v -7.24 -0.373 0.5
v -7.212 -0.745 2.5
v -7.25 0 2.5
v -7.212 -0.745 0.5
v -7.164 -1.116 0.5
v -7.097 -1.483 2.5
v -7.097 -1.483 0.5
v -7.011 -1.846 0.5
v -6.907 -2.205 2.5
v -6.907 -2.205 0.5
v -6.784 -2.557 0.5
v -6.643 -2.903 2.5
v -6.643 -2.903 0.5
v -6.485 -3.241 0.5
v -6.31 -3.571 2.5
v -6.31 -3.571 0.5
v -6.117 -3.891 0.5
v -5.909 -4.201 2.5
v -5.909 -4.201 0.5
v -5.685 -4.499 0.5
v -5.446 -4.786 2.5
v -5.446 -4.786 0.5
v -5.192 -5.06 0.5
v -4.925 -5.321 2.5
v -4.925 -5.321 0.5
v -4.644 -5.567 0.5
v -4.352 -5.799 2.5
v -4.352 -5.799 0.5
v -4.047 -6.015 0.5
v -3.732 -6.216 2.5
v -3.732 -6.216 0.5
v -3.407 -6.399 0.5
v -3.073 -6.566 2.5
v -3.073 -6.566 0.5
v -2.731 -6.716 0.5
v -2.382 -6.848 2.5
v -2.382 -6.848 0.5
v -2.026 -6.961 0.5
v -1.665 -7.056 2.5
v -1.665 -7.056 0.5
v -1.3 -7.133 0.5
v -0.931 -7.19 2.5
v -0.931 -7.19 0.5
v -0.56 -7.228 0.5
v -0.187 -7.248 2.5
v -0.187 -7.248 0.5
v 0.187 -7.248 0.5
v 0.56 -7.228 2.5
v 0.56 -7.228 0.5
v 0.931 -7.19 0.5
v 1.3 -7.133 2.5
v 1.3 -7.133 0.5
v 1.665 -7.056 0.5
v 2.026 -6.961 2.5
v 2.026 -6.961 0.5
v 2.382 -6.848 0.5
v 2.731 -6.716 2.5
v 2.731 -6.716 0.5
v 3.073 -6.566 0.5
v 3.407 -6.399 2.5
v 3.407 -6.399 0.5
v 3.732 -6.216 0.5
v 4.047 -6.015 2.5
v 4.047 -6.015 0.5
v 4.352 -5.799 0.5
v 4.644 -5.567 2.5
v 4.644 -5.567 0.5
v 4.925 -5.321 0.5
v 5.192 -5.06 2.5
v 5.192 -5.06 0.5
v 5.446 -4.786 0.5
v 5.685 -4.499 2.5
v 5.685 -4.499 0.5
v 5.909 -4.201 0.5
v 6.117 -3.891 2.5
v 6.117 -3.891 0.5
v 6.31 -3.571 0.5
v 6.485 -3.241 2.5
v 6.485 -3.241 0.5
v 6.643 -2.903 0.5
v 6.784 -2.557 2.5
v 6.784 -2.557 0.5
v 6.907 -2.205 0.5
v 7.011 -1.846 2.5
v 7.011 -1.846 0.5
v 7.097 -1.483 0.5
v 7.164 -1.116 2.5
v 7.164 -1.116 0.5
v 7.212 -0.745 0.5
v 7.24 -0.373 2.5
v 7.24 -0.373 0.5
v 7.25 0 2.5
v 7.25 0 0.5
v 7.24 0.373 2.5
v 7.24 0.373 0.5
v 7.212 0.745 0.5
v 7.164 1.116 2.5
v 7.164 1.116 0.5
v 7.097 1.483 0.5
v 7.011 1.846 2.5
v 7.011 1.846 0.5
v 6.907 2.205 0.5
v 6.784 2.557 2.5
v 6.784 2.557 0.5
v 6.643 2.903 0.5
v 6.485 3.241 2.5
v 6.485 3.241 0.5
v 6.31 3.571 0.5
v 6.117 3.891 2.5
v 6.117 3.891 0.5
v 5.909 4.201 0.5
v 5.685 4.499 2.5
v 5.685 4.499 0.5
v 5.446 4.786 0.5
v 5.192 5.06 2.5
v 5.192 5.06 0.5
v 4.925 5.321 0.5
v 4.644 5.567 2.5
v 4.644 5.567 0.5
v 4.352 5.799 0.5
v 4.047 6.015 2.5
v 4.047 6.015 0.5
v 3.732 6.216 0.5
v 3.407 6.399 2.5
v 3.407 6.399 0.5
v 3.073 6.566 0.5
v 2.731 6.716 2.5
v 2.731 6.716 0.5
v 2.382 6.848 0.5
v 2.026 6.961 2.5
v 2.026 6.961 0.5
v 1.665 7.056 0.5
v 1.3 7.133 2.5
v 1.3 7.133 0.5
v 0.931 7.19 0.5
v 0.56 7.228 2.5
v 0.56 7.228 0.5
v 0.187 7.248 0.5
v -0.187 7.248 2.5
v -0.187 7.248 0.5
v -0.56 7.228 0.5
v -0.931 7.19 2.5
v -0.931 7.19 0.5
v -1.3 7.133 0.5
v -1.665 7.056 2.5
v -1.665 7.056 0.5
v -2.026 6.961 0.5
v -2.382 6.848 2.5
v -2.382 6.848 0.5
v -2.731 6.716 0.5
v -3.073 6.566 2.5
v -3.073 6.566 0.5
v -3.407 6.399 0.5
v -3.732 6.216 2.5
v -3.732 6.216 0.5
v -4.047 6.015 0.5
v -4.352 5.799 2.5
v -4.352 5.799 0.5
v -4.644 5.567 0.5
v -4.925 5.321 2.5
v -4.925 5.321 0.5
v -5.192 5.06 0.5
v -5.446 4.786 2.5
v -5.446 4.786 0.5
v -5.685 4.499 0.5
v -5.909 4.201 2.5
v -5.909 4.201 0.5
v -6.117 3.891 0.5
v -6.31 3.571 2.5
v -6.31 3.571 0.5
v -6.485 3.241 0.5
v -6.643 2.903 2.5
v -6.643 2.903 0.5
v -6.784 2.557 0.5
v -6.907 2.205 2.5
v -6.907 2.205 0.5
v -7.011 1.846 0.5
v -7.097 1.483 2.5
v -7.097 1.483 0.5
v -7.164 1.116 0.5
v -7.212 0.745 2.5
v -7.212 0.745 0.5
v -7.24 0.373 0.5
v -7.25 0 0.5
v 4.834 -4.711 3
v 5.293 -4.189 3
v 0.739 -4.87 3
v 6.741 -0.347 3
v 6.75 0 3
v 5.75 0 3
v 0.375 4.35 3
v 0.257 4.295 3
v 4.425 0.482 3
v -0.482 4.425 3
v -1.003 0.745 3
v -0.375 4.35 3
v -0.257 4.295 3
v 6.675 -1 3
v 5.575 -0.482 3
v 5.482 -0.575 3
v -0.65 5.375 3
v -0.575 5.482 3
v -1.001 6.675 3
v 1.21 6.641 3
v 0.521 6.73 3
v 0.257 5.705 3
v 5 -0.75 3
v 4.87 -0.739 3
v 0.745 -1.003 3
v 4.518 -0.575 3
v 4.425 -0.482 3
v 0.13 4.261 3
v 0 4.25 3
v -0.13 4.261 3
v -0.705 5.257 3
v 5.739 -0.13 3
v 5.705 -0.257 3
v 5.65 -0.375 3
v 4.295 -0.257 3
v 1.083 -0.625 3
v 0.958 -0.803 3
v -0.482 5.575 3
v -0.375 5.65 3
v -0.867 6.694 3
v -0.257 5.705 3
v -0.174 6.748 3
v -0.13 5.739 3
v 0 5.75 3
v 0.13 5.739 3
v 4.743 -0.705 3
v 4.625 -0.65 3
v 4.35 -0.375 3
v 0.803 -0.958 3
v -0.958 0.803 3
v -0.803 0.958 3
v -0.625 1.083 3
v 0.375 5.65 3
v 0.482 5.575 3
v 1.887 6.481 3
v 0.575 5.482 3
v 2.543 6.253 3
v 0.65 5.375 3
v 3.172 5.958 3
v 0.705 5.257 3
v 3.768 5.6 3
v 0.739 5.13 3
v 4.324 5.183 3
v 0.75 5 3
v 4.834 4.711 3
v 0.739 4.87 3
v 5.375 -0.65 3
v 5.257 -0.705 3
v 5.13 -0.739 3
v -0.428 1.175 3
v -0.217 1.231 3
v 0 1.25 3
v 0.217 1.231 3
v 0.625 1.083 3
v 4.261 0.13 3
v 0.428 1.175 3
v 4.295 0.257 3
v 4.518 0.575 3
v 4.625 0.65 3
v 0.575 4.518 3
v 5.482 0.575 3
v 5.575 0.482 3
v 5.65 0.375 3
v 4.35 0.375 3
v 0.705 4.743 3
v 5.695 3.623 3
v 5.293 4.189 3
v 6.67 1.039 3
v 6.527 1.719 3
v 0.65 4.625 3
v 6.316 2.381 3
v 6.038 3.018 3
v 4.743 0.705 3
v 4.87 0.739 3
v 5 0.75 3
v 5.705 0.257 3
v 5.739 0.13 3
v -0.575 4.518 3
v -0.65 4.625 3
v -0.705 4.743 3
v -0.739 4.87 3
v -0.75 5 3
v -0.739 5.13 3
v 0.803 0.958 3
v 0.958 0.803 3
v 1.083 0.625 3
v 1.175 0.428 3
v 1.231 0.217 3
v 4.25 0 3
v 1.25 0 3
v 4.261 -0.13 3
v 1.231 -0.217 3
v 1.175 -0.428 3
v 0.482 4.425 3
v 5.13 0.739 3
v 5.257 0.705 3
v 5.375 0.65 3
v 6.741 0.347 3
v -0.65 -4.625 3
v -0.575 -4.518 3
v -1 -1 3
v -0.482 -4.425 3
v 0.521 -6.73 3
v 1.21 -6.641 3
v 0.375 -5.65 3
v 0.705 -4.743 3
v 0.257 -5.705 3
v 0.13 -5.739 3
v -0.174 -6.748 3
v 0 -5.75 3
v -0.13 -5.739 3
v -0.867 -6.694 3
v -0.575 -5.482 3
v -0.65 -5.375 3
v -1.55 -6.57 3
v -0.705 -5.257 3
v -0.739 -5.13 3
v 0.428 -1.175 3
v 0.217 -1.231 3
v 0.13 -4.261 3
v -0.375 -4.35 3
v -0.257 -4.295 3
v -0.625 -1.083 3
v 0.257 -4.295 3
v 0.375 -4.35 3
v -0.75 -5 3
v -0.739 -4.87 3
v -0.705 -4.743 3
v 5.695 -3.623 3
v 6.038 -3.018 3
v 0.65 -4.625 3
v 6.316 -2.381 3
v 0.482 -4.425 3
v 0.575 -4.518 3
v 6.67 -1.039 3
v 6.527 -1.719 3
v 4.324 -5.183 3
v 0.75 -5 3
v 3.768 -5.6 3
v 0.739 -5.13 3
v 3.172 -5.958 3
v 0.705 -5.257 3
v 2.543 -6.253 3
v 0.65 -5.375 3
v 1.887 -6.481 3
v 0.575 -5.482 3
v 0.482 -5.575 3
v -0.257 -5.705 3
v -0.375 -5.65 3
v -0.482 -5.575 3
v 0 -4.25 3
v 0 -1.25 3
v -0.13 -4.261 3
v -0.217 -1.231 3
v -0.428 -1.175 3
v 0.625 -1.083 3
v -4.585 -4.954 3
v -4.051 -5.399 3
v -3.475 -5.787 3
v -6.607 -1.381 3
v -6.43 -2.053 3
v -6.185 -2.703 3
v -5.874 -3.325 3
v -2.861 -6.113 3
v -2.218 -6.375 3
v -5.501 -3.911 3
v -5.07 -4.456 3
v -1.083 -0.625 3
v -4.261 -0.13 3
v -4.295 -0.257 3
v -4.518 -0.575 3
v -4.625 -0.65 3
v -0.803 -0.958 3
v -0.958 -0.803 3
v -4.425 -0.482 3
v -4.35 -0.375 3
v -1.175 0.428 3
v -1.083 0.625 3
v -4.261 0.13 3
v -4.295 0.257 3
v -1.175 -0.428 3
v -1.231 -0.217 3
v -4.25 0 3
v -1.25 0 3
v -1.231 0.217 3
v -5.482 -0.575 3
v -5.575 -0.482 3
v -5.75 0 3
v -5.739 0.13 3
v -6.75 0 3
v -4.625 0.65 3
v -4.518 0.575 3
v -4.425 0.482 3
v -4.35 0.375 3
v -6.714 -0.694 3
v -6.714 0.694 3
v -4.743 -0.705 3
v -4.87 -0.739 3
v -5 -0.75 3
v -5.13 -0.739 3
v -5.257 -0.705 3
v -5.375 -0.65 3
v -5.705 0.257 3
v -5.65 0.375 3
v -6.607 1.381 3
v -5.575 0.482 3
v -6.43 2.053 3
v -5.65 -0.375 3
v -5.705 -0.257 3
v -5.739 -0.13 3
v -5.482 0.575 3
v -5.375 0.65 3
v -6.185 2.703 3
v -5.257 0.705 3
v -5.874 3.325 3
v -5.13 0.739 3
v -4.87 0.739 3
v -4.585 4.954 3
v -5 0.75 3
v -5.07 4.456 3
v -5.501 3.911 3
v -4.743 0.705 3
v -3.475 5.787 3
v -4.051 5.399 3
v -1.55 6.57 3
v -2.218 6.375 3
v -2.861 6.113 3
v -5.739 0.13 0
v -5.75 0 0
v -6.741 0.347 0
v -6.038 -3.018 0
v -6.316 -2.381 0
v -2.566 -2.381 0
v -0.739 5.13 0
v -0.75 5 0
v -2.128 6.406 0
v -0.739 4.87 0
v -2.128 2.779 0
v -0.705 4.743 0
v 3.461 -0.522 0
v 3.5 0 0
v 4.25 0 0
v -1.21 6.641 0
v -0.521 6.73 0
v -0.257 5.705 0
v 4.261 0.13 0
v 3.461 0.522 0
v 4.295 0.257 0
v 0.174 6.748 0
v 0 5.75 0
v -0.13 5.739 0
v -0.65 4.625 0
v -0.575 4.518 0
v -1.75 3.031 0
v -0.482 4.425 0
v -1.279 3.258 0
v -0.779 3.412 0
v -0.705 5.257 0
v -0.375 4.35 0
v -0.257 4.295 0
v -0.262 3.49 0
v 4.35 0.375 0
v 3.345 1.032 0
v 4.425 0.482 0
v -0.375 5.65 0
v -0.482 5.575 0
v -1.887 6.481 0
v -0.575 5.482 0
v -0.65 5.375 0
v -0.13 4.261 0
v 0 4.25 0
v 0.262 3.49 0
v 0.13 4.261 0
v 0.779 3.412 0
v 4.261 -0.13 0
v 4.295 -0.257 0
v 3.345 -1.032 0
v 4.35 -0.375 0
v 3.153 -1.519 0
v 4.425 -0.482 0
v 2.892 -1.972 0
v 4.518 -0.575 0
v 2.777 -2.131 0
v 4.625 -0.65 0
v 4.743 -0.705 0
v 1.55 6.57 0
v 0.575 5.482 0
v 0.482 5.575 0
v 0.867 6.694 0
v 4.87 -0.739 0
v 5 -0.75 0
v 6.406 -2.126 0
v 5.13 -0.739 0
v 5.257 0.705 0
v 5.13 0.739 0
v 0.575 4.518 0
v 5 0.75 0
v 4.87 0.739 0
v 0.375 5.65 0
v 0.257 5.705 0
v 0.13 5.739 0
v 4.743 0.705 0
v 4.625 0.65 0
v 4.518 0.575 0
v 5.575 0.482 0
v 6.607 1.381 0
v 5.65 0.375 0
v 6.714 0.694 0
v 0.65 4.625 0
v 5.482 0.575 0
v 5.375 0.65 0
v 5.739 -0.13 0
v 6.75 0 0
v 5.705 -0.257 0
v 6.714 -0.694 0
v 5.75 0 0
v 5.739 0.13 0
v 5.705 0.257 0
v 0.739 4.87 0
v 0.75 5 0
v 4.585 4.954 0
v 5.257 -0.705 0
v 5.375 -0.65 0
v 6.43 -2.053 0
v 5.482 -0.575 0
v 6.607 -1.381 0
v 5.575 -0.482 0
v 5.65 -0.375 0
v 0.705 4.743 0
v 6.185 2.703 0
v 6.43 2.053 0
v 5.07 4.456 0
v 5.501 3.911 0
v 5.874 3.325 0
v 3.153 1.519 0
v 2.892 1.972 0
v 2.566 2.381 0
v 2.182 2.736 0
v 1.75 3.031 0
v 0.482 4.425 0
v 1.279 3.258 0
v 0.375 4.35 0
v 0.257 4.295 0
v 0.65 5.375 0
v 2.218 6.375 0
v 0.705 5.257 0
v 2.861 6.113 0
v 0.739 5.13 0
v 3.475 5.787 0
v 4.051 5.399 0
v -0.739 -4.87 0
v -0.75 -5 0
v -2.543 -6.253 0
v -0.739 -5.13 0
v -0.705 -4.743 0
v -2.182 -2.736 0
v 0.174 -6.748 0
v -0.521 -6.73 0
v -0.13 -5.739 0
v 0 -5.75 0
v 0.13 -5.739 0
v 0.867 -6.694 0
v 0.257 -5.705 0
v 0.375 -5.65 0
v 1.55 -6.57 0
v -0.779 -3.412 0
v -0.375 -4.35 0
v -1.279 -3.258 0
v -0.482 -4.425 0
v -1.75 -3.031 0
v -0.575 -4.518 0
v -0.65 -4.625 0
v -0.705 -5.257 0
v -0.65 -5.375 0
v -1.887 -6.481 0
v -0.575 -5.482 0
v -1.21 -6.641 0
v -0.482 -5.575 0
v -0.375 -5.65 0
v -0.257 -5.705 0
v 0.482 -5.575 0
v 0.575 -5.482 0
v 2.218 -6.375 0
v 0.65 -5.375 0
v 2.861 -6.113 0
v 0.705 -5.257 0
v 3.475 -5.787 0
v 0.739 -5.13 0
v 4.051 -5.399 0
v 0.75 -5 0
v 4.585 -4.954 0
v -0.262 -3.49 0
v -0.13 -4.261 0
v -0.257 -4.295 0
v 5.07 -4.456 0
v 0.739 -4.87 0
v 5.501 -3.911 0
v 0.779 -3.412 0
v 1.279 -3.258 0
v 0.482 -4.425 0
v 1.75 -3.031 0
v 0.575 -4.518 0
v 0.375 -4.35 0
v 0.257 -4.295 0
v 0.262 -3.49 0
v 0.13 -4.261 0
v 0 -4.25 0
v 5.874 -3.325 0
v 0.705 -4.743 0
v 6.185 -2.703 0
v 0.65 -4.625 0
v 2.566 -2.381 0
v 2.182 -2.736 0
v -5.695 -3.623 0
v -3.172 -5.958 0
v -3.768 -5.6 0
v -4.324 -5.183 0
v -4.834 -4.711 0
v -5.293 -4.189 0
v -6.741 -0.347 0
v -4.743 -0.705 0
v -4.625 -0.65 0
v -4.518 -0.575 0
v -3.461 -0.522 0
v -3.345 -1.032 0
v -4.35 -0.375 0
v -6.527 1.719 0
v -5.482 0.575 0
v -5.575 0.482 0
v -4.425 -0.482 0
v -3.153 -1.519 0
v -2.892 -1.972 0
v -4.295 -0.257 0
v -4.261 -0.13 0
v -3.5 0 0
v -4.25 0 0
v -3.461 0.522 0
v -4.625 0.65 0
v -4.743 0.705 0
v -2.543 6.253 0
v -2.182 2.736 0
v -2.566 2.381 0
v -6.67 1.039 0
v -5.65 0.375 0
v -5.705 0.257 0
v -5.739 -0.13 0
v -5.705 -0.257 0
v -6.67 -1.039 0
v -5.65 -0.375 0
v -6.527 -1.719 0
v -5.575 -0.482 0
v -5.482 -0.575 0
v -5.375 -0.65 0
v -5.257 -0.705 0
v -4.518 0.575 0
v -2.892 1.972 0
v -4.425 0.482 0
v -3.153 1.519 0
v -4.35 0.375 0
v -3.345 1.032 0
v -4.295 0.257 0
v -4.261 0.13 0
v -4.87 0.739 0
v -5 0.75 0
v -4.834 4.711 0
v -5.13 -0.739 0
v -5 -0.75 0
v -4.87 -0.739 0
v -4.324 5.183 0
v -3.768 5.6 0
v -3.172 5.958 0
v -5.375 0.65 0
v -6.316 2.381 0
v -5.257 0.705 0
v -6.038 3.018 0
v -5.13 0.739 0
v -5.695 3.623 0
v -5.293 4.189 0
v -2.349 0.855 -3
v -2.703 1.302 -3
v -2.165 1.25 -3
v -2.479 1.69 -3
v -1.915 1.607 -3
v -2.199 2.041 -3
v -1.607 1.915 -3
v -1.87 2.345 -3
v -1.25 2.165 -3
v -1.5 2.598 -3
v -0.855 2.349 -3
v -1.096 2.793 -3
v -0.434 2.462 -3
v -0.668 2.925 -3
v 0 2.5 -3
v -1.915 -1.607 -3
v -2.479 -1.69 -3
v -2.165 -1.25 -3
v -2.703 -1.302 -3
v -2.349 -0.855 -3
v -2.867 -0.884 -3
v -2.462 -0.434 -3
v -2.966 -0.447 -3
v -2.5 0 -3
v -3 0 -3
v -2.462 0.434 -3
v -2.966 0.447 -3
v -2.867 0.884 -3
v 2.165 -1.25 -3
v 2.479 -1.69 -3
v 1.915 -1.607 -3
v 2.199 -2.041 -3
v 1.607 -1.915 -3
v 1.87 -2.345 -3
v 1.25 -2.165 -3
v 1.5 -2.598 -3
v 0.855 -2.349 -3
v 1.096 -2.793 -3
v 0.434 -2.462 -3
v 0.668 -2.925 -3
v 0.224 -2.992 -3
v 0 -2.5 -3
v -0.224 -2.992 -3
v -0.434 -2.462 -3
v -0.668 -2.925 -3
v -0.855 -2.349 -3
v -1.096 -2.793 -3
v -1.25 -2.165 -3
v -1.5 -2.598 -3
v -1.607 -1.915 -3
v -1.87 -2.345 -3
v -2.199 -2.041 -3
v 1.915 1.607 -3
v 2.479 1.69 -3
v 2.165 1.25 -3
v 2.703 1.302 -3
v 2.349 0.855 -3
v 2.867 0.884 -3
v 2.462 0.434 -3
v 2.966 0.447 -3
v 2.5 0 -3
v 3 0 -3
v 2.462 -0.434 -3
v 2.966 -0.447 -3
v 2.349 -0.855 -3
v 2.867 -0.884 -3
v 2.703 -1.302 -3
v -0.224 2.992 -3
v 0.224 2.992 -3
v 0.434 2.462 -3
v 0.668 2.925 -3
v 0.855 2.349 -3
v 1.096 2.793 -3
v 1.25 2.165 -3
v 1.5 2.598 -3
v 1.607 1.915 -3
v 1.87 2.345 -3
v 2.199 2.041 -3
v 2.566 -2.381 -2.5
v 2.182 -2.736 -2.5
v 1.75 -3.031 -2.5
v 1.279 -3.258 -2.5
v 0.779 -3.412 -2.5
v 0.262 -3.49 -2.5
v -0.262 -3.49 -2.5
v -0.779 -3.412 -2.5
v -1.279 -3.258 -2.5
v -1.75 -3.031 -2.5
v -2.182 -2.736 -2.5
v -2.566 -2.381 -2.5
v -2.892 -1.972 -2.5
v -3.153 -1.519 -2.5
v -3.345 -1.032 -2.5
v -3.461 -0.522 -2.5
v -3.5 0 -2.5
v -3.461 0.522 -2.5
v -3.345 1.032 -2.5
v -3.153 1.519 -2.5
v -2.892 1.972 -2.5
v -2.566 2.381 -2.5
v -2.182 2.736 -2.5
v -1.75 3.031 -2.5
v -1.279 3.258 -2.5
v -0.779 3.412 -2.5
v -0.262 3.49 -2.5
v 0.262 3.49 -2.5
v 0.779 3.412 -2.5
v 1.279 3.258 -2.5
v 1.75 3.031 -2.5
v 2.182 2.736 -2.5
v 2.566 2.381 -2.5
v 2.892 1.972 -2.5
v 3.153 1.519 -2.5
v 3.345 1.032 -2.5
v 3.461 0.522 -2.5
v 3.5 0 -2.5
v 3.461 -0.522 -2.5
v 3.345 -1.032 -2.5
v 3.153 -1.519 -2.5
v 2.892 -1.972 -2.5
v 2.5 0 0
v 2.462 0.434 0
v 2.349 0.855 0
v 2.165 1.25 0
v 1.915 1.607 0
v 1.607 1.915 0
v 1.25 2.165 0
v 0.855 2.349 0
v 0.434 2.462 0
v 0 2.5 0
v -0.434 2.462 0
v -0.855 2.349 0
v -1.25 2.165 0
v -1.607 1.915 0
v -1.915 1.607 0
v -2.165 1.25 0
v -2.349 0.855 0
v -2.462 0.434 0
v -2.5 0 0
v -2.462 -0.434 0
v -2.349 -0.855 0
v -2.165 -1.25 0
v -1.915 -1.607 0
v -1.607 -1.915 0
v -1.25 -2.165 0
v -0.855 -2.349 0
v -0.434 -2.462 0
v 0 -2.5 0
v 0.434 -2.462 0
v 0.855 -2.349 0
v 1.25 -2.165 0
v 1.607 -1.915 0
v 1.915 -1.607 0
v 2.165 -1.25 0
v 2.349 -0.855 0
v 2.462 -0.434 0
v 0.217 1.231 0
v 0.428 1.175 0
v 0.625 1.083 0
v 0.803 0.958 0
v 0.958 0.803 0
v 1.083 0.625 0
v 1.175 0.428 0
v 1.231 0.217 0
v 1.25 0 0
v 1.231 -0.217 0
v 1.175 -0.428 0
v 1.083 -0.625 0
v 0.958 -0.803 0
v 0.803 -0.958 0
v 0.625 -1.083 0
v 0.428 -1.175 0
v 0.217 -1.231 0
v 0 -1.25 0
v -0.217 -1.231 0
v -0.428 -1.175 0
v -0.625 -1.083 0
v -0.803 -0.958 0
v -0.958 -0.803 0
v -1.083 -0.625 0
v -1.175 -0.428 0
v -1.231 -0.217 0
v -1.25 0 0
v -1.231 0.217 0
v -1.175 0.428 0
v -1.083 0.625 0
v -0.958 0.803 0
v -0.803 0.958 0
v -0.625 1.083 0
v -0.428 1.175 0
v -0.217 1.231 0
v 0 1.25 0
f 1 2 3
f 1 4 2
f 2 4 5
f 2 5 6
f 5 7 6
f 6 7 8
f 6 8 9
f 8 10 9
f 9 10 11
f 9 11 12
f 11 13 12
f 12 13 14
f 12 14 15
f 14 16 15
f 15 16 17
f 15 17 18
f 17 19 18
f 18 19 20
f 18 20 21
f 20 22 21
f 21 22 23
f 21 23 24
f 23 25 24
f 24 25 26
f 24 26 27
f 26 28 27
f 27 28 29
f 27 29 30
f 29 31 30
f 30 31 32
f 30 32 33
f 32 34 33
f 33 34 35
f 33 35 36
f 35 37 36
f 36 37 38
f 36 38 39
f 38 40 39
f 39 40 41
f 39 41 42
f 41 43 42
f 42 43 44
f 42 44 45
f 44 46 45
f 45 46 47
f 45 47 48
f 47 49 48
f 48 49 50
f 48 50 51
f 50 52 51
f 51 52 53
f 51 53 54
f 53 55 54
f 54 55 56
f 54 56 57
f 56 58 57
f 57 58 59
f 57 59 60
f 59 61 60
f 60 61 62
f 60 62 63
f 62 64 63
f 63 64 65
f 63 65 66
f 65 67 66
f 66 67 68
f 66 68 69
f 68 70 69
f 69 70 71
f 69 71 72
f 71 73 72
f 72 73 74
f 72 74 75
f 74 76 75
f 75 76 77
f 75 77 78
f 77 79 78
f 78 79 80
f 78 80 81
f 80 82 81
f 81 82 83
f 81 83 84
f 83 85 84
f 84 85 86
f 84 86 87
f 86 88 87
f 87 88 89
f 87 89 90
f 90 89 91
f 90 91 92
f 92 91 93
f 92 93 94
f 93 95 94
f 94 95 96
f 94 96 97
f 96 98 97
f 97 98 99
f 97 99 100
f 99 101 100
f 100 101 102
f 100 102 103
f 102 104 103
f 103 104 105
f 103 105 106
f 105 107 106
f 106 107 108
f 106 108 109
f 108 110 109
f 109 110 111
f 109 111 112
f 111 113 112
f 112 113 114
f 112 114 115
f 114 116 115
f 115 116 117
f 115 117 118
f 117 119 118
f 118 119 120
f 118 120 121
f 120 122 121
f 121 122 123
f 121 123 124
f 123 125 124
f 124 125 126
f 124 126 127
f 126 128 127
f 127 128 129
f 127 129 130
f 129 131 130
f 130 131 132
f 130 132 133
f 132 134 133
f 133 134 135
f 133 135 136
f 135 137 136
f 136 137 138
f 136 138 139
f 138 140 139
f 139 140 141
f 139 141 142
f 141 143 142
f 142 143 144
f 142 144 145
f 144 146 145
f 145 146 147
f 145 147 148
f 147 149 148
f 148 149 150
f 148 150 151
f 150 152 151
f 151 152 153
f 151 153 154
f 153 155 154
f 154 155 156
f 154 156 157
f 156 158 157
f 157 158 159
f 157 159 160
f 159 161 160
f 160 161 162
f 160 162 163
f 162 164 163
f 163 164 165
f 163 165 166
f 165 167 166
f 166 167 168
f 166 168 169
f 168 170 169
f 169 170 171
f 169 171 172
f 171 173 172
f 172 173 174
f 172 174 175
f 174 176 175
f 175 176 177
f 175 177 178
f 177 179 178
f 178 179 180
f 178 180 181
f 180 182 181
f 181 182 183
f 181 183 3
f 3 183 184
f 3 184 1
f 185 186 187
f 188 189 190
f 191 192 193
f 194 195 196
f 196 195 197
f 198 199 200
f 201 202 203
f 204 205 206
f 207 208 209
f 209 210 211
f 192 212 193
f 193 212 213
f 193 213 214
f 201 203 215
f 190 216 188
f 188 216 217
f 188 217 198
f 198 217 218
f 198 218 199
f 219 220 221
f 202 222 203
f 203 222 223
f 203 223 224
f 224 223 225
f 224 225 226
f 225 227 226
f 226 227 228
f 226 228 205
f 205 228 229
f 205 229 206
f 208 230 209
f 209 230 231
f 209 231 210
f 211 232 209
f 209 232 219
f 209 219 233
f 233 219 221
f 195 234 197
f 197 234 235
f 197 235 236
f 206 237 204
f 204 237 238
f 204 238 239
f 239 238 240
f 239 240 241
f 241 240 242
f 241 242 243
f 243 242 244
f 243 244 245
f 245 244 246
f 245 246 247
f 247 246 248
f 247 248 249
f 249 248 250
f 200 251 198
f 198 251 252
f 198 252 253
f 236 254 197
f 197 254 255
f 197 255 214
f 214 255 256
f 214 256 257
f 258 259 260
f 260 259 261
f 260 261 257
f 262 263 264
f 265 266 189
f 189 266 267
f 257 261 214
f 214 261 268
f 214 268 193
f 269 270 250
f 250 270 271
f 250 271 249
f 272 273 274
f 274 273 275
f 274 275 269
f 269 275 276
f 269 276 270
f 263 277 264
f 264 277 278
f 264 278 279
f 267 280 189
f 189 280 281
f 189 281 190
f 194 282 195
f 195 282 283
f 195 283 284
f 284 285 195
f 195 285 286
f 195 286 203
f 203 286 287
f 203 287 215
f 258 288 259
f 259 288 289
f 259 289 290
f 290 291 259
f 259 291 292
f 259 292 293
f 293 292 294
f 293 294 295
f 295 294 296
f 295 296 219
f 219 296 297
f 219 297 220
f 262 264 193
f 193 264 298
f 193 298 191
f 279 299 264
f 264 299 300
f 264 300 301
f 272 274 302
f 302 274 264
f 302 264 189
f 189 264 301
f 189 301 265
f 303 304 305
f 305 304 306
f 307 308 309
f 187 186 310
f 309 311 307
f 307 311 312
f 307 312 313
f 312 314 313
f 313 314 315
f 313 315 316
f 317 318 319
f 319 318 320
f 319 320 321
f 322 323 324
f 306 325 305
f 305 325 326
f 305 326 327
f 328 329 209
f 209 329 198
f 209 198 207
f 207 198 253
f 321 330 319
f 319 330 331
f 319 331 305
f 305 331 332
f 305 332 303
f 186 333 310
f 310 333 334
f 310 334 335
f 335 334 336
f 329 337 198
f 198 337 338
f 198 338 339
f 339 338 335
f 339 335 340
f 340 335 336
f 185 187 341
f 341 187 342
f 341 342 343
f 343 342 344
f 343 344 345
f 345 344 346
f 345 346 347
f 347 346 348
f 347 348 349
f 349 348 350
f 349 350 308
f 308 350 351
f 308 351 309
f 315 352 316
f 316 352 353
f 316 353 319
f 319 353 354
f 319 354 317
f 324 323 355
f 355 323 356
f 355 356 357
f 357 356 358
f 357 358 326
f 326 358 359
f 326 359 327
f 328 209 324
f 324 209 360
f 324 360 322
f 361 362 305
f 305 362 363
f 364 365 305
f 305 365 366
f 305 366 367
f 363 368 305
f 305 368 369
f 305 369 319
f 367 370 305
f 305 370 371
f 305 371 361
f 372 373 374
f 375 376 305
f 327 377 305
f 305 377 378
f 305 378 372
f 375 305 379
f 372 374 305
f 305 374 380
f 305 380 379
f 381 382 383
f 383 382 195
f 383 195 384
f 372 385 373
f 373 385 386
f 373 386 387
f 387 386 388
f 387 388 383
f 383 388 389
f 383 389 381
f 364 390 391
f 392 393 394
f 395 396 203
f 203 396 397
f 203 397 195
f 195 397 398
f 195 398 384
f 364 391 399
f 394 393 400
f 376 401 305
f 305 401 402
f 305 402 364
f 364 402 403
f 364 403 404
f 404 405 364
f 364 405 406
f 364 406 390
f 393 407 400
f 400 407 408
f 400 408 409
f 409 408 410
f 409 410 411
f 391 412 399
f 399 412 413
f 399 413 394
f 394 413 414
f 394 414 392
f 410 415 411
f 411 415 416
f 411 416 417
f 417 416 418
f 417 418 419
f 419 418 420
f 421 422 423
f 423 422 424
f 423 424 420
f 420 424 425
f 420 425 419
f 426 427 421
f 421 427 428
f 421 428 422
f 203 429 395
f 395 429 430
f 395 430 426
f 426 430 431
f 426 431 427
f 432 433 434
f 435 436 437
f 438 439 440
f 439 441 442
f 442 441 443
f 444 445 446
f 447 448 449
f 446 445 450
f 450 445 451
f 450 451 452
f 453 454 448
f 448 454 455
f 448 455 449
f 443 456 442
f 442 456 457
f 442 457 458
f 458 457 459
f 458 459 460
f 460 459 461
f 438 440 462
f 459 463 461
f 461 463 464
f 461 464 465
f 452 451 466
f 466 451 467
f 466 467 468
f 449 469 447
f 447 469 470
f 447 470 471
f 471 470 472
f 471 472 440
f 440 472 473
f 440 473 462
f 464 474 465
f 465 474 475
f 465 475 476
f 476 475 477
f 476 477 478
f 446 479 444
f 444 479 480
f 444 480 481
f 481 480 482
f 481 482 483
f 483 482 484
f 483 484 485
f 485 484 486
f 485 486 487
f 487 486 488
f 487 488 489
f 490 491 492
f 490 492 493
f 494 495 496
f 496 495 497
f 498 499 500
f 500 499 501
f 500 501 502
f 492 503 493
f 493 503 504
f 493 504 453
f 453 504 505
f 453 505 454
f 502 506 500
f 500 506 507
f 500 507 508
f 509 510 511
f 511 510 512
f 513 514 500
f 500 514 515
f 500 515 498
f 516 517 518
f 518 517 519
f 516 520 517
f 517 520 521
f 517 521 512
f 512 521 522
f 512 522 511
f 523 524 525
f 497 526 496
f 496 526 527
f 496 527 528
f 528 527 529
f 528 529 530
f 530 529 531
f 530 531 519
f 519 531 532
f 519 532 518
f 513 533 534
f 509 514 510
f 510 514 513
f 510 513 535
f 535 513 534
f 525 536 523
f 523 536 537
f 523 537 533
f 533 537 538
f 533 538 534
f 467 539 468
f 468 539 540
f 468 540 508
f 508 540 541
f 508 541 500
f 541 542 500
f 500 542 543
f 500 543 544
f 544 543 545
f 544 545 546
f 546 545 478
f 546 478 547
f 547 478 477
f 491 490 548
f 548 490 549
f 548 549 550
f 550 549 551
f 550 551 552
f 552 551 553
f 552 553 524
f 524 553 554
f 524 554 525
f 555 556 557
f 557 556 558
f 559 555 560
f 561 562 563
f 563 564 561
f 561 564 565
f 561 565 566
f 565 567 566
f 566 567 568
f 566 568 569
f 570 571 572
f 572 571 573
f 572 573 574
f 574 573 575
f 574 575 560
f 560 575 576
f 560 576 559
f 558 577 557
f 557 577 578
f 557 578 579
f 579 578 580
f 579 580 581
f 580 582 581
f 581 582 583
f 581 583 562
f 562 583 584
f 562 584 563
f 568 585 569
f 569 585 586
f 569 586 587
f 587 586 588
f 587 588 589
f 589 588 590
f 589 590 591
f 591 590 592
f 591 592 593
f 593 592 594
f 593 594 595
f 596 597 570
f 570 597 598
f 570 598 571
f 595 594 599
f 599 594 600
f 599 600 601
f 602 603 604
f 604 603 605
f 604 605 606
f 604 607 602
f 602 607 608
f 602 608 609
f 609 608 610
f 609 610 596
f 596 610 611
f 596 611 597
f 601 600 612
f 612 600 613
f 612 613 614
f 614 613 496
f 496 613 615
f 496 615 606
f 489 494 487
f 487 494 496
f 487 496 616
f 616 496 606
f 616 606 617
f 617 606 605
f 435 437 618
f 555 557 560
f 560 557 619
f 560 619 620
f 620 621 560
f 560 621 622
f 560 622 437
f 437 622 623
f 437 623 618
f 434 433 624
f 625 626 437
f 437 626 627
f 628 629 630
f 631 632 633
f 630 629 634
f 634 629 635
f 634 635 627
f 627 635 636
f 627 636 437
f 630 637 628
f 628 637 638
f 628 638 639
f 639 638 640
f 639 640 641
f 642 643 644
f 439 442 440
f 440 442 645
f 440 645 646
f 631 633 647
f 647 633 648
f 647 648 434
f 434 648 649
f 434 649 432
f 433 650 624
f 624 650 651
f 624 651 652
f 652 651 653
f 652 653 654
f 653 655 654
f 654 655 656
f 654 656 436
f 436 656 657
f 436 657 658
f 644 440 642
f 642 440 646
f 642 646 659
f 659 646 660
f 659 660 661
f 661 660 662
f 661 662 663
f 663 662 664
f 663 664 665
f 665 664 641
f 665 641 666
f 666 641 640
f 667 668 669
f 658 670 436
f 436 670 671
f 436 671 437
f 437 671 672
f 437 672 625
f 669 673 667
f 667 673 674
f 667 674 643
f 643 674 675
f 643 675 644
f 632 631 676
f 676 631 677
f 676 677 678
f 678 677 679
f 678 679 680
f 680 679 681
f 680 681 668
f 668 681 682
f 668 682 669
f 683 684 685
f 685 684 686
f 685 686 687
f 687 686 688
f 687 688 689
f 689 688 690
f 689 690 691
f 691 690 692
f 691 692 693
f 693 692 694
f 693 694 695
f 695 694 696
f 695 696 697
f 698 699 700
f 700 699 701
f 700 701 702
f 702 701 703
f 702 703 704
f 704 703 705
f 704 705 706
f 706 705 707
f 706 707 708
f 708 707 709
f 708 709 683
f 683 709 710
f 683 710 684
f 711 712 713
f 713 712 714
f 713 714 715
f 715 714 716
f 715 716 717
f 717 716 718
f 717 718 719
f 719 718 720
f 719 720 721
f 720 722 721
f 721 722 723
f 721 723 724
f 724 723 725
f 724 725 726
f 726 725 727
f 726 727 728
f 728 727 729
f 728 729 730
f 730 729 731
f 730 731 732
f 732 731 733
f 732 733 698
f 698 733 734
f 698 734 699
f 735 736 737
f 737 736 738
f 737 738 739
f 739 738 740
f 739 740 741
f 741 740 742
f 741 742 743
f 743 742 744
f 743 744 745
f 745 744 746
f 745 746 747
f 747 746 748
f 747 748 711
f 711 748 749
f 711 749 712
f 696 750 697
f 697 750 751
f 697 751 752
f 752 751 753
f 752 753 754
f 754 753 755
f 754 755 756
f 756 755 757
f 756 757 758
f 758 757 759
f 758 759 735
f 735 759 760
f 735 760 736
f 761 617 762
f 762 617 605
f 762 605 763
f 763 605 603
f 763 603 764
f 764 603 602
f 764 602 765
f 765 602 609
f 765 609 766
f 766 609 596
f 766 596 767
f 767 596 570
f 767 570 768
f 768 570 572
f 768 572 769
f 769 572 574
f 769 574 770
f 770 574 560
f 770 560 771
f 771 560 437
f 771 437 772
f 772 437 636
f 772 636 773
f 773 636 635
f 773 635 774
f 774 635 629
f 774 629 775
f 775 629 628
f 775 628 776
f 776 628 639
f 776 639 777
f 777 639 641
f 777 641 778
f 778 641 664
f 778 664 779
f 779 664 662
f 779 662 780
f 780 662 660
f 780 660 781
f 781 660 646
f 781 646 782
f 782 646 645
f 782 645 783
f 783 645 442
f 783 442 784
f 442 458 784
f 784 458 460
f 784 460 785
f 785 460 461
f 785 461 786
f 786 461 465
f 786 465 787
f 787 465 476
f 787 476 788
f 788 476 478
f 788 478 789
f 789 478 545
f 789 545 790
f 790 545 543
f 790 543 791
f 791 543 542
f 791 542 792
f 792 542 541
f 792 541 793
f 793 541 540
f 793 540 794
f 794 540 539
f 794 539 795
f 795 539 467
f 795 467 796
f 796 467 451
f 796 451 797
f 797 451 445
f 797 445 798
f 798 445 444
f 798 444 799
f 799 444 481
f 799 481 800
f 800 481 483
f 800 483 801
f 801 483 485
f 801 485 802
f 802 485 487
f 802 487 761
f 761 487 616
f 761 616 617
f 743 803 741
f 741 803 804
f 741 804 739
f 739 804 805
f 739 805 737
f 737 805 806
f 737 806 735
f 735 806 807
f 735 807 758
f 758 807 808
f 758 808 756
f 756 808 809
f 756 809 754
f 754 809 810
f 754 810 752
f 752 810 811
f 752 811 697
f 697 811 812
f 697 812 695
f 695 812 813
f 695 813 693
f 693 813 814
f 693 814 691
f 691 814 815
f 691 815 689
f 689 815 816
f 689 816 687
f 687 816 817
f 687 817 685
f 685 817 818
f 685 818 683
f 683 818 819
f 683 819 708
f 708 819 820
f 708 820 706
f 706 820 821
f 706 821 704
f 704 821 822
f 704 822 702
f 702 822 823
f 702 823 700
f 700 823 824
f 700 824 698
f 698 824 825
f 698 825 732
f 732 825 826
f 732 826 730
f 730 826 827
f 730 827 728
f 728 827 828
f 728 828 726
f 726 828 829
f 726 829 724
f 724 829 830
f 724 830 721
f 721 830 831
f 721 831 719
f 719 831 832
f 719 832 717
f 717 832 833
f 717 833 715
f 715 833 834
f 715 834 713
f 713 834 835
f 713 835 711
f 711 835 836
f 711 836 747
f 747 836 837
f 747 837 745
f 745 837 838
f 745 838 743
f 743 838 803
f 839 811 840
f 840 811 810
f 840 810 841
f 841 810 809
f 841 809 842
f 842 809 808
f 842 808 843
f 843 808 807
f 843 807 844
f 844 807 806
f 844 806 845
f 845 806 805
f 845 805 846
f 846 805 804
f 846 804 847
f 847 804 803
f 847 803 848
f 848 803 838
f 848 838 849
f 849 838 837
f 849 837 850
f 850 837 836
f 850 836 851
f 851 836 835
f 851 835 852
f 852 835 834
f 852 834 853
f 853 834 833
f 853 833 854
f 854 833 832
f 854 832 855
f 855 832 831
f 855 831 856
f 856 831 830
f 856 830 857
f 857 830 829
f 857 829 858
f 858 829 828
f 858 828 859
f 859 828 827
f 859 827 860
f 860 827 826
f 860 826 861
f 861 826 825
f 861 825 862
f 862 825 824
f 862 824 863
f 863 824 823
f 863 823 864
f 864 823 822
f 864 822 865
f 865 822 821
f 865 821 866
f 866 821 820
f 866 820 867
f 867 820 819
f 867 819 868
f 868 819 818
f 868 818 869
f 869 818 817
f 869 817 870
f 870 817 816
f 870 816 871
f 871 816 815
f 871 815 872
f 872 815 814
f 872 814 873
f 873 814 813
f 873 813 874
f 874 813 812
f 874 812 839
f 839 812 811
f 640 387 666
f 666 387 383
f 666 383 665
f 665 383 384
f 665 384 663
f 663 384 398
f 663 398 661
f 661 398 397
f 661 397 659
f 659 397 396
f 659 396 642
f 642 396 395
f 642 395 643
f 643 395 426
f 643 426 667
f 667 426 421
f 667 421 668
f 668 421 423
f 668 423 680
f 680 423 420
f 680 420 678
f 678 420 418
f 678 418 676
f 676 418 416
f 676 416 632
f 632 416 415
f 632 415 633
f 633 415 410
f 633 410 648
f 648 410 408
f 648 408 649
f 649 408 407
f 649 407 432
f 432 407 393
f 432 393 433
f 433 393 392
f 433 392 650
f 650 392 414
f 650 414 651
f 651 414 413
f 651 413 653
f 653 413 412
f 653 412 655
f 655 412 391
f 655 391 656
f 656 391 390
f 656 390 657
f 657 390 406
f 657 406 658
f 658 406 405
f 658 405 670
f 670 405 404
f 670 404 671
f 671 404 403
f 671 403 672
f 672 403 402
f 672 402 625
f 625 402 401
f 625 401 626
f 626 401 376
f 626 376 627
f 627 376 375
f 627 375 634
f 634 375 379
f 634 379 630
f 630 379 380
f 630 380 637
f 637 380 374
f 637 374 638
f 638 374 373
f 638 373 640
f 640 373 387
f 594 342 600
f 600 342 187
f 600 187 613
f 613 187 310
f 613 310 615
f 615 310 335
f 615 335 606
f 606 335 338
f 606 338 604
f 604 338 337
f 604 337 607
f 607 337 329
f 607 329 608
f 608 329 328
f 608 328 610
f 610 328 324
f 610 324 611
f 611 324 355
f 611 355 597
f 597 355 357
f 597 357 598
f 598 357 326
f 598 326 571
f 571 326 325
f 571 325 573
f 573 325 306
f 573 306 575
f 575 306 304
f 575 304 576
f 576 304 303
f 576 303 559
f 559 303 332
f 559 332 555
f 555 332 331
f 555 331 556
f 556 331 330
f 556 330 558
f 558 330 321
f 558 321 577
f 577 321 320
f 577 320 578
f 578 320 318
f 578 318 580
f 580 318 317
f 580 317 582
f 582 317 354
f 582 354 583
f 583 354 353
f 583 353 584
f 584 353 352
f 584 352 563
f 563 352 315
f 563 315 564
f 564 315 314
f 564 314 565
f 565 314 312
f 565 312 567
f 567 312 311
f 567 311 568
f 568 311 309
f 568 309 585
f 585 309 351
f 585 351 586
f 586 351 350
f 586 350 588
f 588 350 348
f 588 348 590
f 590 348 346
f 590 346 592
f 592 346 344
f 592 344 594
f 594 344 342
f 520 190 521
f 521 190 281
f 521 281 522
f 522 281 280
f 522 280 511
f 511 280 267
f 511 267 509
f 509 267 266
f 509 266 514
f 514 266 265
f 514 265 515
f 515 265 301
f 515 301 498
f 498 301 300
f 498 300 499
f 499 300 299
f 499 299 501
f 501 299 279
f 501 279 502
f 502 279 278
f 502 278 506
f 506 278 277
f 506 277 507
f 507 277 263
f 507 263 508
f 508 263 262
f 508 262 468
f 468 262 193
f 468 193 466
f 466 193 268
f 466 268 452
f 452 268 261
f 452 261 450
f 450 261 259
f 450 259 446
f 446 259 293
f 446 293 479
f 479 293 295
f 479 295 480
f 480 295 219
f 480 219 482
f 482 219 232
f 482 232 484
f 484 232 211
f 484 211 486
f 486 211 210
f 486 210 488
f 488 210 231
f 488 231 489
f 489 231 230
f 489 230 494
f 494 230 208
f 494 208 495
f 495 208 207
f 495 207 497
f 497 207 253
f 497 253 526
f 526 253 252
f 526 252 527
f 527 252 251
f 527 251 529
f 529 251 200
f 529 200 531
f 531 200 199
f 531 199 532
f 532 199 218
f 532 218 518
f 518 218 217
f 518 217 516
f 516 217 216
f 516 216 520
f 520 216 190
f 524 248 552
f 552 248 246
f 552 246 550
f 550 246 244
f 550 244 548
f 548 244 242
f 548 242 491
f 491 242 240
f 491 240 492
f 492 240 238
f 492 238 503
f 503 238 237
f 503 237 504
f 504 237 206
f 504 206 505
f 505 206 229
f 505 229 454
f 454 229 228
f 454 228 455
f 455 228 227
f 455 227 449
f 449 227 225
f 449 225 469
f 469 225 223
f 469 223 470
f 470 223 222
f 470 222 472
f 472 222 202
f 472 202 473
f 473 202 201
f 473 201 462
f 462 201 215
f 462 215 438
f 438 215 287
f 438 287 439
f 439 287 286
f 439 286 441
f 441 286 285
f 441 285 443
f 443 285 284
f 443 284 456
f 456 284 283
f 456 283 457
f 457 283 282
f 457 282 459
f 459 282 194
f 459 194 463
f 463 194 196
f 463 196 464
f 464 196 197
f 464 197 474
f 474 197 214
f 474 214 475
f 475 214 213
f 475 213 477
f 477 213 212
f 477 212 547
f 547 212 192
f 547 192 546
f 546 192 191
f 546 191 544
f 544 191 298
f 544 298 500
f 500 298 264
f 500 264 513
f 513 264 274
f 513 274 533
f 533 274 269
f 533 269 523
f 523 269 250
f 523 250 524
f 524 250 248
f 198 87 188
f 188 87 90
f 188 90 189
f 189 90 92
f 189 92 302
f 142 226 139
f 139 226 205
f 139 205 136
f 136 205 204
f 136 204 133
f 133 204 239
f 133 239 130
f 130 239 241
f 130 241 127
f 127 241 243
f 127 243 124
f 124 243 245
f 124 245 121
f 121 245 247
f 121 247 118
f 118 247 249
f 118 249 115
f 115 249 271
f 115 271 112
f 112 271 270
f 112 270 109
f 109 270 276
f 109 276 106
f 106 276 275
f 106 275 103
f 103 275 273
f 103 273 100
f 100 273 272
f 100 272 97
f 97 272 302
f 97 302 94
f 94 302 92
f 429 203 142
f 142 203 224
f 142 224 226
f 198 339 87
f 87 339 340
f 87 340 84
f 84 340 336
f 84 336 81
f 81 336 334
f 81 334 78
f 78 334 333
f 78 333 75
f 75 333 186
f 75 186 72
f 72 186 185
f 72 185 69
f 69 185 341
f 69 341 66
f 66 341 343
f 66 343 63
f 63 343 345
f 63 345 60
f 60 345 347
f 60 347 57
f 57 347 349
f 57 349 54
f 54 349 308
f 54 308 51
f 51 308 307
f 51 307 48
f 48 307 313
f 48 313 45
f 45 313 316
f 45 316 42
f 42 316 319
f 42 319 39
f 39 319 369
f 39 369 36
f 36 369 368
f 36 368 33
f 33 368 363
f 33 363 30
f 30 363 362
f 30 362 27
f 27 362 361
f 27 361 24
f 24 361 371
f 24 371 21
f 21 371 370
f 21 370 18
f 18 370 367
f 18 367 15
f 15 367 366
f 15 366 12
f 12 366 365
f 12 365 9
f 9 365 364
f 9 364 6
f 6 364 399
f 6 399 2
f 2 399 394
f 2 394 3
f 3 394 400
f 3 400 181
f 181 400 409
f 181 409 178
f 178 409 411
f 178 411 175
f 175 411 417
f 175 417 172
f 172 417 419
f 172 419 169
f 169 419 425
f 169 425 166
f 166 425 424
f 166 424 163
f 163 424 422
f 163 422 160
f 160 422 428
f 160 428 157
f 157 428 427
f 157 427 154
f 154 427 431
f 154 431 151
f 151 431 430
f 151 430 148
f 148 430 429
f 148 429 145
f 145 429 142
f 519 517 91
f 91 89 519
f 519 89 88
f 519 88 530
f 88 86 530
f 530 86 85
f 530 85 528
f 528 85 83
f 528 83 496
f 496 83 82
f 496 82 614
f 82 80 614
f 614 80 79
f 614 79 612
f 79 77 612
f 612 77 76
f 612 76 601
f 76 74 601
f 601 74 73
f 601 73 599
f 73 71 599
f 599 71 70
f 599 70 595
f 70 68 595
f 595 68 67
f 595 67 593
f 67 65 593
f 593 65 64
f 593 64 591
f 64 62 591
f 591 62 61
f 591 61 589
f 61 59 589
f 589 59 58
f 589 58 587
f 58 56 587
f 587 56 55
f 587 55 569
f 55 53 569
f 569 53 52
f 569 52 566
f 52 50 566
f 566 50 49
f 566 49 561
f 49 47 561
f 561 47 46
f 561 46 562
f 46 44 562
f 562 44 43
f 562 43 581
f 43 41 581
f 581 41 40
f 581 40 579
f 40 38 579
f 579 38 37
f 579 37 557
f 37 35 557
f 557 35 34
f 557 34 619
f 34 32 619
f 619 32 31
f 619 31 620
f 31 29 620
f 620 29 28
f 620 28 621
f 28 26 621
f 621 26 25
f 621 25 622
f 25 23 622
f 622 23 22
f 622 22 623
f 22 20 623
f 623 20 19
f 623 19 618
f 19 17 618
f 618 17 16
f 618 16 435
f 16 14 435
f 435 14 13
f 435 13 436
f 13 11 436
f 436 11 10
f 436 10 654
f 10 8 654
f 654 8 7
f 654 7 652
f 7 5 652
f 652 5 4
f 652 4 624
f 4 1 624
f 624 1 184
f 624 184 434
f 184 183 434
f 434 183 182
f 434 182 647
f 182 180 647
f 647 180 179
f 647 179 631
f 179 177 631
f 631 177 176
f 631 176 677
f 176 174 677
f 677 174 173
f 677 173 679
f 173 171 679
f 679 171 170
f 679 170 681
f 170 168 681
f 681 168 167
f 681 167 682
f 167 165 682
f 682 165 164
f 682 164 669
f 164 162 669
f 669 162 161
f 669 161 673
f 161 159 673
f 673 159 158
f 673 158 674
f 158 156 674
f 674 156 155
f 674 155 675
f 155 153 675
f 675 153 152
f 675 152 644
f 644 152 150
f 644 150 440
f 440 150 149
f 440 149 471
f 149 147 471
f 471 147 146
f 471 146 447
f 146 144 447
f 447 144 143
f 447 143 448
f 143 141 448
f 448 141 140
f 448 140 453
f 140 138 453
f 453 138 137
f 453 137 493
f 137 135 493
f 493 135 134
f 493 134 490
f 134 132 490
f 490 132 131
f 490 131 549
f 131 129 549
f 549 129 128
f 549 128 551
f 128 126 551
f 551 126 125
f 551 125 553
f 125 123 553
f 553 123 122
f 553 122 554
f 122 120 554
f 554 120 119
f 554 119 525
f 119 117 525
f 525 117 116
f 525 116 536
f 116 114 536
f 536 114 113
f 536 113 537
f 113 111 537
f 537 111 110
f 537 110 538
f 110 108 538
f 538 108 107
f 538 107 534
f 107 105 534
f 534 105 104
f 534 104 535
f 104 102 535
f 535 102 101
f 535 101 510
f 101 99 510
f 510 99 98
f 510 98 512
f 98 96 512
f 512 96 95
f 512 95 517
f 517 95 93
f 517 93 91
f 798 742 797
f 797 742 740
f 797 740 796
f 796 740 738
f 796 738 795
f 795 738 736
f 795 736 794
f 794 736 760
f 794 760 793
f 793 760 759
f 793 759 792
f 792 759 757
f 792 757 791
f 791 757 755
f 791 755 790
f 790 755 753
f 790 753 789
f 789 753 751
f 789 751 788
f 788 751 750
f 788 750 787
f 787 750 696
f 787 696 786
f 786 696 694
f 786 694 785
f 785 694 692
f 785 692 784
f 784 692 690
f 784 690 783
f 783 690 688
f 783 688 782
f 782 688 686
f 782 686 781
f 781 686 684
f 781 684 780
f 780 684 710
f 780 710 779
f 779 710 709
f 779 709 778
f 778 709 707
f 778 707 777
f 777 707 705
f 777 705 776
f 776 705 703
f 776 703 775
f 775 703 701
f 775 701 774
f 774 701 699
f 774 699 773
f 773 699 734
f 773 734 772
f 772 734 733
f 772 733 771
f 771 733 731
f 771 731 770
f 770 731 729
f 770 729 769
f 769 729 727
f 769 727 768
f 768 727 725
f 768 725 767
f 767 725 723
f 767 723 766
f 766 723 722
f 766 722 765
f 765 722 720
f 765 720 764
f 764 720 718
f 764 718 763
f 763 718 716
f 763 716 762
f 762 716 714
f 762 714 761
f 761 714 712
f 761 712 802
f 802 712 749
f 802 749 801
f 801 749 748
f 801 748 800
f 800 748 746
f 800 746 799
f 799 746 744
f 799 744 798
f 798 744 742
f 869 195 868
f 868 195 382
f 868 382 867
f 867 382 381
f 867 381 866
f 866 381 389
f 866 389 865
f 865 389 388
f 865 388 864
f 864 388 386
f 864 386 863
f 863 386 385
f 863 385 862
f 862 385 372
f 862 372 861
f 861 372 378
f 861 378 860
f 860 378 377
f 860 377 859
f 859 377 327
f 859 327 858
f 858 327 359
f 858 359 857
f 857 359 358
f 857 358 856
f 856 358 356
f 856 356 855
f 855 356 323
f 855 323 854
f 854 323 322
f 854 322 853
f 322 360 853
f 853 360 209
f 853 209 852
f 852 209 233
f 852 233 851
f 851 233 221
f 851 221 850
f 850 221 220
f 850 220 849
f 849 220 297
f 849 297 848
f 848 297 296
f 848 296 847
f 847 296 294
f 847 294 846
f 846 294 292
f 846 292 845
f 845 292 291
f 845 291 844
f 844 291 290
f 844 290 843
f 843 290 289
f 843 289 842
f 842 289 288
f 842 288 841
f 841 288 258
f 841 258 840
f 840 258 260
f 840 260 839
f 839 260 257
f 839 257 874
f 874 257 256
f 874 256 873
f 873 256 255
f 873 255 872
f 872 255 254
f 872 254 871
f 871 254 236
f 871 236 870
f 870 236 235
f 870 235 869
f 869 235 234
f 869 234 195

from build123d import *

# Parameters (mm, degrees)
SKETCH1_R           = 7.25
BOSS_EXTRUDE1_DEPTH = 3
SKETCH2_R           = 3.5
SKETCH2_R_2         = 2.5
BOSS_EXTRUDE2_DEPTH = 3
SKETCH3_R           = 0.75
CUT_EXTRUDE1_DEPTH  = 12.879604371
CHAMFER1_SIZE       = 0.5
SKETCH5_R           = 1.25
CUT_EXTRUDE3_DEPTH  = 12.879604371


with BuildPart() as part:
    # Sketch1 → Boss-Extrude1 (new body)
    with BuildSketch(Plane.XY):
        Circle(SKETCH1_R)
    extrude(amount=BOSS_EXTRUDE1_DEPTH)

    # Sketch2 → Boss-Extrude2 (add)
    with BuildSketch(Plane(origin=(0, 0, 0), x_dir=(-1, 0, 0), z_dir=(0, 0, -1))):
        with Locations(Location((0, 0, 0), (0, 0, 180))):
            Circle(SKETCH2_R)
        Circle(SKETCH2_R_2, mode=Mode.SUBTRACT)
    extrude(amount=BOSS_EXTRUDE2_DEPTH)

    # Sketch3 → Cut-Extrude1 (cut, through all)
    with BuildSketch(Plane.XY.offset(3)):
        with Locations((0, 5)):
            Circle(SKETCH3_R)
        with Locations((5, 0)):
            Circle(SKETCH3_R)
        with Locations((0, -5)):
            Circle(SKETCH3_R)
        with Locations((-5, 0)):
            Circle(SKETCH3_R)
    extrude(amount=-CUT_EXTRUDE1_DEPTH, mode=Mode.SUBTRACT)

    # Chamfer1
    chamfer1_edges = [part.edges().sort_by_distance(p)[0] for p in [
        (-7.25, 0, 0),
        (-7.25, 0, 3),
        (-3.5, 0, -3),
    ]]
    chamfer(chamfer1_edges, length=CHAMFER1_SIZE)

    # Sketch5 → Cut-Extrude3 (cut, through all)
    with BuildSketch(Plane.XY.offset(3)):
        Circle(SKETCH5_R)
    extrude(amount=-CUT_EXTRUDE3_DEPTH, mode=Mode.SUBTRACT)


solid = part.part
